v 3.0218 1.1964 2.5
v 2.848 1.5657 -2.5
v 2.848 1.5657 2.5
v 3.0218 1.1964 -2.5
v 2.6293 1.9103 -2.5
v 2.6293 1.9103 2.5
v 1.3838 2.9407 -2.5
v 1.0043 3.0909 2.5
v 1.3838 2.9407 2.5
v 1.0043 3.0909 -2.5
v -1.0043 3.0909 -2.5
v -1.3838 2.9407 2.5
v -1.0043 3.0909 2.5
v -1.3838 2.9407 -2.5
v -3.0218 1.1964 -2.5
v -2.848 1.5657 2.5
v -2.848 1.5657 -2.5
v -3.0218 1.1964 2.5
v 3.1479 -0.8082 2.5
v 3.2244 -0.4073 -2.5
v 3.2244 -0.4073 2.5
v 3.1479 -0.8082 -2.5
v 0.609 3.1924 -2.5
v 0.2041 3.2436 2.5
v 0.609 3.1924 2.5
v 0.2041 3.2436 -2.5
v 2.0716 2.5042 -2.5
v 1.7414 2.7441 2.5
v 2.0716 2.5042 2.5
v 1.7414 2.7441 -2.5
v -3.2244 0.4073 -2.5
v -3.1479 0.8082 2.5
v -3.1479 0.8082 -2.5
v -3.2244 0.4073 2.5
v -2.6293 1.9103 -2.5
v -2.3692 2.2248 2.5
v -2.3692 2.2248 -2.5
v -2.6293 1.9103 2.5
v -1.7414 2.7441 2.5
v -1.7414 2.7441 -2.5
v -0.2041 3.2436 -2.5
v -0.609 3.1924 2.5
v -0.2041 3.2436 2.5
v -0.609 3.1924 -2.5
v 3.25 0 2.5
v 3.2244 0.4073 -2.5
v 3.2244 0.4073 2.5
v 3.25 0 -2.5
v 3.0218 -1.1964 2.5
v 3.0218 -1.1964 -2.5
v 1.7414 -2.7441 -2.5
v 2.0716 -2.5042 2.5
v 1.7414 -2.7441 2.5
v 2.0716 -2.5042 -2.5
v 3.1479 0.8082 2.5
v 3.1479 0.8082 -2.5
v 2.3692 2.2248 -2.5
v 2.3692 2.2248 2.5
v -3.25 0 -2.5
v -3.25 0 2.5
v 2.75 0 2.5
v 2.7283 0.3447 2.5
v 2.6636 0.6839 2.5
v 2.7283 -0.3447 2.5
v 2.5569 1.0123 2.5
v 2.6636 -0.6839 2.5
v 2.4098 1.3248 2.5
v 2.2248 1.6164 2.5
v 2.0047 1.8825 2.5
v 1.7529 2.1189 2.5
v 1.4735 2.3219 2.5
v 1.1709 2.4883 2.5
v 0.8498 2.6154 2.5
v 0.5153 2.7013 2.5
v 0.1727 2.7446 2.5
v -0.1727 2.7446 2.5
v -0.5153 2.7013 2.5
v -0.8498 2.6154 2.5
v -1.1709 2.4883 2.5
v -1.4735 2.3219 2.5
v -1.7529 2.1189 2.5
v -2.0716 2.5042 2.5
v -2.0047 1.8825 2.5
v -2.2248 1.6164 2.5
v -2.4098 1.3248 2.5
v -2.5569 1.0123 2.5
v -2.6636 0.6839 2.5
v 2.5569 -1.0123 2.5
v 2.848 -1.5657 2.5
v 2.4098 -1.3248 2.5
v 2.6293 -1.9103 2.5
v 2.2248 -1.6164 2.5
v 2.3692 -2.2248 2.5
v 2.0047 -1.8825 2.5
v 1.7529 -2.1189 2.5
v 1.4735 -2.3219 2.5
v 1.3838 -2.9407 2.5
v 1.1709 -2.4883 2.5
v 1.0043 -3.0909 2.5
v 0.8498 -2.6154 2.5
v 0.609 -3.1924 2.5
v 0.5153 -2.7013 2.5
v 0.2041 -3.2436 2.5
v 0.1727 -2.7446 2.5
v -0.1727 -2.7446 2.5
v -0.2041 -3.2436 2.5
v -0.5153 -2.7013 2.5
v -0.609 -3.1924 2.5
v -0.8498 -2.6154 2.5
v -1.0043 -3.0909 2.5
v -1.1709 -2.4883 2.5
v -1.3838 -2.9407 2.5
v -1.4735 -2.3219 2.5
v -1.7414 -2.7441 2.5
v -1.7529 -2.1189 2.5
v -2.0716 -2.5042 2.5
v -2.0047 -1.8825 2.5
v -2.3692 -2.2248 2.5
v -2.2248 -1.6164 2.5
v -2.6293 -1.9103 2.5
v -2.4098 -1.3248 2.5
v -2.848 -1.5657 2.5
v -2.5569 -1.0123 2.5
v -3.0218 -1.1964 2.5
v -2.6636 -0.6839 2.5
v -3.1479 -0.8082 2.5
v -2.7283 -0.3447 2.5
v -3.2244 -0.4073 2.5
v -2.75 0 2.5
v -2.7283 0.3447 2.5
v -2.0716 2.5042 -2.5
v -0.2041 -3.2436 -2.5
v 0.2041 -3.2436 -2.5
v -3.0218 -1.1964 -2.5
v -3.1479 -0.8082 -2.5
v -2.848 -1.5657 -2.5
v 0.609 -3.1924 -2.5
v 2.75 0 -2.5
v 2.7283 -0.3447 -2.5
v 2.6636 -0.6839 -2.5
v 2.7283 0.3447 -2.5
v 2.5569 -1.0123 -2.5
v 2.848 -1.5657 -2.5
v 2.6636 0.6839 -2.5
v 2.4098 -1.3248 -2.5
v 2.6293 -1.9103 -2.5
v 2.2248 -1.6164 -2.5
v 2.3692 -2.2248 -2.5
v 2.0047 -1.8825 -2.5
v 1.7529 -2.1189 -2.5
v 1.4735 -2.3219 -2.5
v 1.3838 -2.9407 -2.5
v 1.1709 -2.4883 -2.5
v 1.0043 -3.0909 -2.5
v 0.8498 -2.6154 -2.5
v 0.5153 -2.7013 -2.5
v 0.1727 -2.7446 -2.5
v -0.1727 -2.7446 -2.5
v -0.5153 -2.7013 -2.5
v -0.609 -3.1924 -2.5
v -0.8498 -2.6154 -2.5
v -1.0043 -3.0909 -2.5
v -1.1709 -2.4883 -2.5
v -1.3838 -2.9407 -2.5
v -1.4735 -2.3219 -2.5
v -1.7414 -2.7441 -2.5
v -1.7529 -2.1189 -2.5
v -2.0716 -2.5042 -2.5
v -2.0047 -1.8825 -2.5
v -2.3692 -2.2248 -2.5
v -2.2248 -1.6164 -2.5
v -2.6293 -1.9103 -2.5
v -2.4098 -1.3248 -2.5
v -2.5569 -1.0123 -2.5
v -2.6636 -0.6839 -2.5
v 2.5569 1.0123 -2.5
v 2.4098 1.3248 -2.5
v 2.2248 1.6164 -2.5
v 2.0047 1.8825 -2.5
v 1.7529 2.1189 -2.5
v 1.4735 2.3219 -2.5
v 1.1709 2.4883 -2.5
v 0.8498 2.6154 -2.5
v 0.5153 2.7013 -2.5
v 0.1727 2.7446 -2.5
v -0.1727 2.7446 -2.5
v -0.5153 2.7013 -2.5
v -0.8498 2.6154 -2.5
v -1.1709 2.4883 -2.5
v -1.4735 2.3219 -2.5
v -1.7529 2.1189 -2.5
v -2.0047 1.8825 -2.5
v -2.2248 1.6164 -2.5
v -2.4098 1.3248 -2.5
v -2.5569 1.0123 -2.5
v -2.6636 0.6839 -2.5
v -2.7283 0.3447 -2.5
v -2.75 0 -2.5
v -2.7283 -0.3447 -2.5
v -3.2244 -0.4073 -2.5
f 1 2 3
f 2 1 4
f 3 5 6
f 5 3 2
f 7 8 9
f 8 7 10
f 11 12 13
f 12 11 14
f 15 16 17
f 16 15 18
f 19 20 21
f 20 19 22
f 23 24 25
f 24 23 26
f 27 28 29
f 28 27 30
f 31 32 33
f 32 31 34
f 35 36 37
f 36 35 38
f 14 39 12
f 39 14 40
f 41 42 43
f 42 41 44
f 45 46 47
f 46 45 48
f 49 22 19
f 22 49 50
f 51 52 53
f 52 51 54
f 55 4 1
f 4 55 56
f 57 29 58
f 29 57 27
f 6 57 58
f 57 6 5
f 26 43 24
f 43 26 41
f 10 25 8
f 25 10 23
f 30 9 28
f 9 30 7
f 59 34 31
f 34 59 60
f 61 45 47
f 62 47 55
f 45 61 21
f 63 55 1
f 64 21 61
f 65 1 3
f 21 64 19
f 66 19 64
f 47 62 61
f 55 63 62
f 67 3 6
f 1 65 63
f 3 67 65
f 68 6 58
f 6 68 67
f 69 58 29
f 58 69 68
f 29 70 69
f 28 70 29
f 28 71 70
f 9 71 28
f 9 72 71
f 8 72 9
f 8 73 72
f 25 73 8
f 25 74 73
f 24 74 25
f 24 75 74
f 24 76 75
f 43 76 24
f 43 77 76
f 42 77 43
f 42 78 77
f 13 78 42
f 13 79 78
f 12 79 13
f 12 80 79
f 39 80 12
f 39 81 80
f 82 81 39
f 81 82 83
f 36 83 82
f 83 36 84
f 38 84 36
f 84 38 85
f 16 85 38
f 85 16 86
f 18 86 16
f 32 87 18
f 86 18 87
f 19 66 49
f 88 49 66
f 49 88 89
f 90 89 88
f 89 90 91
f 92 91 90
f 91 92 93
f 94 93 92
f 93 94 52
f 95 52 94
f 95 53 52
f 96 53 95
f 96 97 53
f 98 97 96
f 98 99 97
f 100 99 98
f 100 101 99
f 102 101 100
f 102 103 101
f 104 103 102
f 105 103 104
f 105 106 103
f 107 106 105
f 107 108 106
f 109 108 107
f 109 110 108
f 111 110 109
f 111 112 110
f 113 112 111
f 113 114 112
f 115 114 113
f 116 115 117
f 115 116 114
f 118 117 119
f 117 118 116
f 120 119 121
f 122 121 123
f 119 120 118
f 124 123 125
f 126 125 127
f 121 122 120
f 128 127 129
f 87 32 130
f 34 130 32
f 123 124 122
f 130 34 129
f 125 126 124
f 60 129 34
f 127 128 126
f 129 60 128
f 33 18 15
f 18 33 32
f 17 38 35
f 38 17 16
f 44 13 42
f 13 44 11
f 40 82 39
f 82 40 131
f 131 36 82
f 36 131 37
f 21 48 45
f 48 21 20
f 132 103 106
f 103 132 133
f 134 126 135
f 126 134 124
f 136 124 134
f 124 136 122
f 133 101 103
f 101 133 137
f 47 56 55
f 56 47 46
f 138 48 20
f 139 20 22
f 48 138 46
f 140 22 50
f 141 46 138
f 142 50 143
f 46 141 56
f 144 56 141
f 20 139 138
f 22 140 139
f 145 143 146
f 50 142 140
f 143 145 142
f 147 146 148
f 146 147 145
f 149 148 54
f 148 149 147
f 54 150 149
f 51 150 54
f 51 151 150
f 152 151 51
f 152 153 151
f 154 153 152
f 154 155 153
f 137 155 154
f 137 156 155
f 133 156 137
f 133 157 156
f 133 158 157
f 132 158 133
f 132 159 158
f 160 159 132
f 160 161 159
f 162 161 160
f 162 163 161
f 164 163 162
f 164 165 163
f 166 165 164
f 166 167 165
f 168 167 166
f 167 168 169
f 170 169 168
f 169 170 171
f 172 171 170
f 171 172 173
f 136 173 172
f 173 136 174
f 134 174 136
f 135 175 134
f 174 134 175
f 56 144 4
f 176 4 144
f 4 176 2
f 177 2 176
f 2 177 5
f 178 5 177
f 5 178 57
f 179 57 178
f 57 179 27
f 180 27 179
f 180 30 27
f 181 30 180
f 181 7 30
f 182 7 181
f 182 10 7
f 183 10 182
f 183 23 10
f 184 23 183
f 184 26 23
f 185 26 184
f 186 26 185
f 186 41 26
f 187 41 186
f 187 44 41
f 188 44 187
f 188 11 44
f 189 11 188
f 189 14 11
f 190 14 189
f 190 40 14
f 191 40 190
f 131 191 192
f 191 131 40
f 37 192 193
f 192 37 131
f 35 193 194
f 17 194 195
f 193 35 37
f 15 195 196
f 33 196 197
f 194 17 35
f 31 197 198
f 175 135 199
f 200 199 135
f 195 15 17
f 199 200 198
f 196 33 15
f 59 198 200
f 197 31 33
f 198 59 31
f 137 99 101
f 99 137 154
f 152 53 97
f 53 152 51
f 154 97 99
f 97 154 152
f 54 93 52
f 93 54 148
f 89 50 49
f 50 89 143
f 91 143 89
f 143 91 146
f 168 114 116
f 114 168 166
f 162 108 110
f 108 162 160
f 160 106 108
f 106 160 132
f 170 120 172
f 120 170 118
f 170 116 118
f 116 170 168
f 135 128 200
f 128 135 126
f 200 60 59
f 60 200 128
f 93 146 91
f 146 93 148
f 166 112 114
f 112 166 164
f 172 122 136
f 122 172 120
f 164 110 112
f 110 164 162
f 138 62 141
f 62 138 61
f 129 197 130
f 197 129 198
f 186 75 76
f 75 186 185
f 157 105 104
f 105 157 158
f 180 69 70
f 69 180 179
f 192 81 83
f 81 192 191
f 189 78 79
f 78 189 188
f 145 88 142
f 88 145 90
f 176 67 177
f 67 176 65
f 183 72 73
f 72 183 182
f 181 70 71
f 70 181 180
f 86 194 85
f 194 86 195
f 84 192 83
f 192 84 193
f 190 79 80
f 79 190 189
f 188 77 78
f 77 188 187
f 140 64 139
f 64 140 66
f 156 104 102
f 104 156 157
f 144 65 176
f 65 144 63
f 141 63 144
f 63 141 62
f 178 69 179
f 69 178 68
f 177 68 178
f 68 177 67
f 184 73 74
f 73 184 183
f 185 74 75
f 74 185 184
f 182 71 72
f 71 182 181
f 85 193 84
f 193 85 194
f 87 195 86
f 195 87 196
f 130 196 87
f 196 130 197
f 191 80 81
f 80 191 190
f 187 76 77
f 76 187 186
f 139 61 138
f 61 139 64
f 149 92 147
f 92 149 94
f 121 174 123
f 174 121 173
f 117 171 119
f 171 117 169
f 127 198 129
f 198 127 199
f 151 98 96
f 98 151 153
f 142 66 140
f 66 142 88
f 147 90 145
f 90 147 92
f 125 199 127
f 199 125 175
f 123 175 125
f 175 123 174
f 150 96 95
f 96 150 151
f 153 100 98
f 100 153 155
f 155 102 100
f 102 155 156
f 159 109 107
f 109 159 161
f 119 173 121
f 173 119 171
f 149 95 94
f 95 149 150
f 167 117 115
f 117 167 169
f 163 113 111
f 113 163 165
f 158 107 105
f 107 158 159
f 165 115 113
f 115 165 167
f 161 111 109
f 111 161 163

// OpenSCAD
$fn = 50;


difference() {
	union() {
		translate(v = [0, 0, -2.5000000000]) {
			cylinder(h = 5, r = 3.2500000000);
		}
	}
	union() {
		translate(v = [0, 0, -100.0000000000]) {
			cylinder(h = 200, r = 2.7500000000);
		}
	}
}
